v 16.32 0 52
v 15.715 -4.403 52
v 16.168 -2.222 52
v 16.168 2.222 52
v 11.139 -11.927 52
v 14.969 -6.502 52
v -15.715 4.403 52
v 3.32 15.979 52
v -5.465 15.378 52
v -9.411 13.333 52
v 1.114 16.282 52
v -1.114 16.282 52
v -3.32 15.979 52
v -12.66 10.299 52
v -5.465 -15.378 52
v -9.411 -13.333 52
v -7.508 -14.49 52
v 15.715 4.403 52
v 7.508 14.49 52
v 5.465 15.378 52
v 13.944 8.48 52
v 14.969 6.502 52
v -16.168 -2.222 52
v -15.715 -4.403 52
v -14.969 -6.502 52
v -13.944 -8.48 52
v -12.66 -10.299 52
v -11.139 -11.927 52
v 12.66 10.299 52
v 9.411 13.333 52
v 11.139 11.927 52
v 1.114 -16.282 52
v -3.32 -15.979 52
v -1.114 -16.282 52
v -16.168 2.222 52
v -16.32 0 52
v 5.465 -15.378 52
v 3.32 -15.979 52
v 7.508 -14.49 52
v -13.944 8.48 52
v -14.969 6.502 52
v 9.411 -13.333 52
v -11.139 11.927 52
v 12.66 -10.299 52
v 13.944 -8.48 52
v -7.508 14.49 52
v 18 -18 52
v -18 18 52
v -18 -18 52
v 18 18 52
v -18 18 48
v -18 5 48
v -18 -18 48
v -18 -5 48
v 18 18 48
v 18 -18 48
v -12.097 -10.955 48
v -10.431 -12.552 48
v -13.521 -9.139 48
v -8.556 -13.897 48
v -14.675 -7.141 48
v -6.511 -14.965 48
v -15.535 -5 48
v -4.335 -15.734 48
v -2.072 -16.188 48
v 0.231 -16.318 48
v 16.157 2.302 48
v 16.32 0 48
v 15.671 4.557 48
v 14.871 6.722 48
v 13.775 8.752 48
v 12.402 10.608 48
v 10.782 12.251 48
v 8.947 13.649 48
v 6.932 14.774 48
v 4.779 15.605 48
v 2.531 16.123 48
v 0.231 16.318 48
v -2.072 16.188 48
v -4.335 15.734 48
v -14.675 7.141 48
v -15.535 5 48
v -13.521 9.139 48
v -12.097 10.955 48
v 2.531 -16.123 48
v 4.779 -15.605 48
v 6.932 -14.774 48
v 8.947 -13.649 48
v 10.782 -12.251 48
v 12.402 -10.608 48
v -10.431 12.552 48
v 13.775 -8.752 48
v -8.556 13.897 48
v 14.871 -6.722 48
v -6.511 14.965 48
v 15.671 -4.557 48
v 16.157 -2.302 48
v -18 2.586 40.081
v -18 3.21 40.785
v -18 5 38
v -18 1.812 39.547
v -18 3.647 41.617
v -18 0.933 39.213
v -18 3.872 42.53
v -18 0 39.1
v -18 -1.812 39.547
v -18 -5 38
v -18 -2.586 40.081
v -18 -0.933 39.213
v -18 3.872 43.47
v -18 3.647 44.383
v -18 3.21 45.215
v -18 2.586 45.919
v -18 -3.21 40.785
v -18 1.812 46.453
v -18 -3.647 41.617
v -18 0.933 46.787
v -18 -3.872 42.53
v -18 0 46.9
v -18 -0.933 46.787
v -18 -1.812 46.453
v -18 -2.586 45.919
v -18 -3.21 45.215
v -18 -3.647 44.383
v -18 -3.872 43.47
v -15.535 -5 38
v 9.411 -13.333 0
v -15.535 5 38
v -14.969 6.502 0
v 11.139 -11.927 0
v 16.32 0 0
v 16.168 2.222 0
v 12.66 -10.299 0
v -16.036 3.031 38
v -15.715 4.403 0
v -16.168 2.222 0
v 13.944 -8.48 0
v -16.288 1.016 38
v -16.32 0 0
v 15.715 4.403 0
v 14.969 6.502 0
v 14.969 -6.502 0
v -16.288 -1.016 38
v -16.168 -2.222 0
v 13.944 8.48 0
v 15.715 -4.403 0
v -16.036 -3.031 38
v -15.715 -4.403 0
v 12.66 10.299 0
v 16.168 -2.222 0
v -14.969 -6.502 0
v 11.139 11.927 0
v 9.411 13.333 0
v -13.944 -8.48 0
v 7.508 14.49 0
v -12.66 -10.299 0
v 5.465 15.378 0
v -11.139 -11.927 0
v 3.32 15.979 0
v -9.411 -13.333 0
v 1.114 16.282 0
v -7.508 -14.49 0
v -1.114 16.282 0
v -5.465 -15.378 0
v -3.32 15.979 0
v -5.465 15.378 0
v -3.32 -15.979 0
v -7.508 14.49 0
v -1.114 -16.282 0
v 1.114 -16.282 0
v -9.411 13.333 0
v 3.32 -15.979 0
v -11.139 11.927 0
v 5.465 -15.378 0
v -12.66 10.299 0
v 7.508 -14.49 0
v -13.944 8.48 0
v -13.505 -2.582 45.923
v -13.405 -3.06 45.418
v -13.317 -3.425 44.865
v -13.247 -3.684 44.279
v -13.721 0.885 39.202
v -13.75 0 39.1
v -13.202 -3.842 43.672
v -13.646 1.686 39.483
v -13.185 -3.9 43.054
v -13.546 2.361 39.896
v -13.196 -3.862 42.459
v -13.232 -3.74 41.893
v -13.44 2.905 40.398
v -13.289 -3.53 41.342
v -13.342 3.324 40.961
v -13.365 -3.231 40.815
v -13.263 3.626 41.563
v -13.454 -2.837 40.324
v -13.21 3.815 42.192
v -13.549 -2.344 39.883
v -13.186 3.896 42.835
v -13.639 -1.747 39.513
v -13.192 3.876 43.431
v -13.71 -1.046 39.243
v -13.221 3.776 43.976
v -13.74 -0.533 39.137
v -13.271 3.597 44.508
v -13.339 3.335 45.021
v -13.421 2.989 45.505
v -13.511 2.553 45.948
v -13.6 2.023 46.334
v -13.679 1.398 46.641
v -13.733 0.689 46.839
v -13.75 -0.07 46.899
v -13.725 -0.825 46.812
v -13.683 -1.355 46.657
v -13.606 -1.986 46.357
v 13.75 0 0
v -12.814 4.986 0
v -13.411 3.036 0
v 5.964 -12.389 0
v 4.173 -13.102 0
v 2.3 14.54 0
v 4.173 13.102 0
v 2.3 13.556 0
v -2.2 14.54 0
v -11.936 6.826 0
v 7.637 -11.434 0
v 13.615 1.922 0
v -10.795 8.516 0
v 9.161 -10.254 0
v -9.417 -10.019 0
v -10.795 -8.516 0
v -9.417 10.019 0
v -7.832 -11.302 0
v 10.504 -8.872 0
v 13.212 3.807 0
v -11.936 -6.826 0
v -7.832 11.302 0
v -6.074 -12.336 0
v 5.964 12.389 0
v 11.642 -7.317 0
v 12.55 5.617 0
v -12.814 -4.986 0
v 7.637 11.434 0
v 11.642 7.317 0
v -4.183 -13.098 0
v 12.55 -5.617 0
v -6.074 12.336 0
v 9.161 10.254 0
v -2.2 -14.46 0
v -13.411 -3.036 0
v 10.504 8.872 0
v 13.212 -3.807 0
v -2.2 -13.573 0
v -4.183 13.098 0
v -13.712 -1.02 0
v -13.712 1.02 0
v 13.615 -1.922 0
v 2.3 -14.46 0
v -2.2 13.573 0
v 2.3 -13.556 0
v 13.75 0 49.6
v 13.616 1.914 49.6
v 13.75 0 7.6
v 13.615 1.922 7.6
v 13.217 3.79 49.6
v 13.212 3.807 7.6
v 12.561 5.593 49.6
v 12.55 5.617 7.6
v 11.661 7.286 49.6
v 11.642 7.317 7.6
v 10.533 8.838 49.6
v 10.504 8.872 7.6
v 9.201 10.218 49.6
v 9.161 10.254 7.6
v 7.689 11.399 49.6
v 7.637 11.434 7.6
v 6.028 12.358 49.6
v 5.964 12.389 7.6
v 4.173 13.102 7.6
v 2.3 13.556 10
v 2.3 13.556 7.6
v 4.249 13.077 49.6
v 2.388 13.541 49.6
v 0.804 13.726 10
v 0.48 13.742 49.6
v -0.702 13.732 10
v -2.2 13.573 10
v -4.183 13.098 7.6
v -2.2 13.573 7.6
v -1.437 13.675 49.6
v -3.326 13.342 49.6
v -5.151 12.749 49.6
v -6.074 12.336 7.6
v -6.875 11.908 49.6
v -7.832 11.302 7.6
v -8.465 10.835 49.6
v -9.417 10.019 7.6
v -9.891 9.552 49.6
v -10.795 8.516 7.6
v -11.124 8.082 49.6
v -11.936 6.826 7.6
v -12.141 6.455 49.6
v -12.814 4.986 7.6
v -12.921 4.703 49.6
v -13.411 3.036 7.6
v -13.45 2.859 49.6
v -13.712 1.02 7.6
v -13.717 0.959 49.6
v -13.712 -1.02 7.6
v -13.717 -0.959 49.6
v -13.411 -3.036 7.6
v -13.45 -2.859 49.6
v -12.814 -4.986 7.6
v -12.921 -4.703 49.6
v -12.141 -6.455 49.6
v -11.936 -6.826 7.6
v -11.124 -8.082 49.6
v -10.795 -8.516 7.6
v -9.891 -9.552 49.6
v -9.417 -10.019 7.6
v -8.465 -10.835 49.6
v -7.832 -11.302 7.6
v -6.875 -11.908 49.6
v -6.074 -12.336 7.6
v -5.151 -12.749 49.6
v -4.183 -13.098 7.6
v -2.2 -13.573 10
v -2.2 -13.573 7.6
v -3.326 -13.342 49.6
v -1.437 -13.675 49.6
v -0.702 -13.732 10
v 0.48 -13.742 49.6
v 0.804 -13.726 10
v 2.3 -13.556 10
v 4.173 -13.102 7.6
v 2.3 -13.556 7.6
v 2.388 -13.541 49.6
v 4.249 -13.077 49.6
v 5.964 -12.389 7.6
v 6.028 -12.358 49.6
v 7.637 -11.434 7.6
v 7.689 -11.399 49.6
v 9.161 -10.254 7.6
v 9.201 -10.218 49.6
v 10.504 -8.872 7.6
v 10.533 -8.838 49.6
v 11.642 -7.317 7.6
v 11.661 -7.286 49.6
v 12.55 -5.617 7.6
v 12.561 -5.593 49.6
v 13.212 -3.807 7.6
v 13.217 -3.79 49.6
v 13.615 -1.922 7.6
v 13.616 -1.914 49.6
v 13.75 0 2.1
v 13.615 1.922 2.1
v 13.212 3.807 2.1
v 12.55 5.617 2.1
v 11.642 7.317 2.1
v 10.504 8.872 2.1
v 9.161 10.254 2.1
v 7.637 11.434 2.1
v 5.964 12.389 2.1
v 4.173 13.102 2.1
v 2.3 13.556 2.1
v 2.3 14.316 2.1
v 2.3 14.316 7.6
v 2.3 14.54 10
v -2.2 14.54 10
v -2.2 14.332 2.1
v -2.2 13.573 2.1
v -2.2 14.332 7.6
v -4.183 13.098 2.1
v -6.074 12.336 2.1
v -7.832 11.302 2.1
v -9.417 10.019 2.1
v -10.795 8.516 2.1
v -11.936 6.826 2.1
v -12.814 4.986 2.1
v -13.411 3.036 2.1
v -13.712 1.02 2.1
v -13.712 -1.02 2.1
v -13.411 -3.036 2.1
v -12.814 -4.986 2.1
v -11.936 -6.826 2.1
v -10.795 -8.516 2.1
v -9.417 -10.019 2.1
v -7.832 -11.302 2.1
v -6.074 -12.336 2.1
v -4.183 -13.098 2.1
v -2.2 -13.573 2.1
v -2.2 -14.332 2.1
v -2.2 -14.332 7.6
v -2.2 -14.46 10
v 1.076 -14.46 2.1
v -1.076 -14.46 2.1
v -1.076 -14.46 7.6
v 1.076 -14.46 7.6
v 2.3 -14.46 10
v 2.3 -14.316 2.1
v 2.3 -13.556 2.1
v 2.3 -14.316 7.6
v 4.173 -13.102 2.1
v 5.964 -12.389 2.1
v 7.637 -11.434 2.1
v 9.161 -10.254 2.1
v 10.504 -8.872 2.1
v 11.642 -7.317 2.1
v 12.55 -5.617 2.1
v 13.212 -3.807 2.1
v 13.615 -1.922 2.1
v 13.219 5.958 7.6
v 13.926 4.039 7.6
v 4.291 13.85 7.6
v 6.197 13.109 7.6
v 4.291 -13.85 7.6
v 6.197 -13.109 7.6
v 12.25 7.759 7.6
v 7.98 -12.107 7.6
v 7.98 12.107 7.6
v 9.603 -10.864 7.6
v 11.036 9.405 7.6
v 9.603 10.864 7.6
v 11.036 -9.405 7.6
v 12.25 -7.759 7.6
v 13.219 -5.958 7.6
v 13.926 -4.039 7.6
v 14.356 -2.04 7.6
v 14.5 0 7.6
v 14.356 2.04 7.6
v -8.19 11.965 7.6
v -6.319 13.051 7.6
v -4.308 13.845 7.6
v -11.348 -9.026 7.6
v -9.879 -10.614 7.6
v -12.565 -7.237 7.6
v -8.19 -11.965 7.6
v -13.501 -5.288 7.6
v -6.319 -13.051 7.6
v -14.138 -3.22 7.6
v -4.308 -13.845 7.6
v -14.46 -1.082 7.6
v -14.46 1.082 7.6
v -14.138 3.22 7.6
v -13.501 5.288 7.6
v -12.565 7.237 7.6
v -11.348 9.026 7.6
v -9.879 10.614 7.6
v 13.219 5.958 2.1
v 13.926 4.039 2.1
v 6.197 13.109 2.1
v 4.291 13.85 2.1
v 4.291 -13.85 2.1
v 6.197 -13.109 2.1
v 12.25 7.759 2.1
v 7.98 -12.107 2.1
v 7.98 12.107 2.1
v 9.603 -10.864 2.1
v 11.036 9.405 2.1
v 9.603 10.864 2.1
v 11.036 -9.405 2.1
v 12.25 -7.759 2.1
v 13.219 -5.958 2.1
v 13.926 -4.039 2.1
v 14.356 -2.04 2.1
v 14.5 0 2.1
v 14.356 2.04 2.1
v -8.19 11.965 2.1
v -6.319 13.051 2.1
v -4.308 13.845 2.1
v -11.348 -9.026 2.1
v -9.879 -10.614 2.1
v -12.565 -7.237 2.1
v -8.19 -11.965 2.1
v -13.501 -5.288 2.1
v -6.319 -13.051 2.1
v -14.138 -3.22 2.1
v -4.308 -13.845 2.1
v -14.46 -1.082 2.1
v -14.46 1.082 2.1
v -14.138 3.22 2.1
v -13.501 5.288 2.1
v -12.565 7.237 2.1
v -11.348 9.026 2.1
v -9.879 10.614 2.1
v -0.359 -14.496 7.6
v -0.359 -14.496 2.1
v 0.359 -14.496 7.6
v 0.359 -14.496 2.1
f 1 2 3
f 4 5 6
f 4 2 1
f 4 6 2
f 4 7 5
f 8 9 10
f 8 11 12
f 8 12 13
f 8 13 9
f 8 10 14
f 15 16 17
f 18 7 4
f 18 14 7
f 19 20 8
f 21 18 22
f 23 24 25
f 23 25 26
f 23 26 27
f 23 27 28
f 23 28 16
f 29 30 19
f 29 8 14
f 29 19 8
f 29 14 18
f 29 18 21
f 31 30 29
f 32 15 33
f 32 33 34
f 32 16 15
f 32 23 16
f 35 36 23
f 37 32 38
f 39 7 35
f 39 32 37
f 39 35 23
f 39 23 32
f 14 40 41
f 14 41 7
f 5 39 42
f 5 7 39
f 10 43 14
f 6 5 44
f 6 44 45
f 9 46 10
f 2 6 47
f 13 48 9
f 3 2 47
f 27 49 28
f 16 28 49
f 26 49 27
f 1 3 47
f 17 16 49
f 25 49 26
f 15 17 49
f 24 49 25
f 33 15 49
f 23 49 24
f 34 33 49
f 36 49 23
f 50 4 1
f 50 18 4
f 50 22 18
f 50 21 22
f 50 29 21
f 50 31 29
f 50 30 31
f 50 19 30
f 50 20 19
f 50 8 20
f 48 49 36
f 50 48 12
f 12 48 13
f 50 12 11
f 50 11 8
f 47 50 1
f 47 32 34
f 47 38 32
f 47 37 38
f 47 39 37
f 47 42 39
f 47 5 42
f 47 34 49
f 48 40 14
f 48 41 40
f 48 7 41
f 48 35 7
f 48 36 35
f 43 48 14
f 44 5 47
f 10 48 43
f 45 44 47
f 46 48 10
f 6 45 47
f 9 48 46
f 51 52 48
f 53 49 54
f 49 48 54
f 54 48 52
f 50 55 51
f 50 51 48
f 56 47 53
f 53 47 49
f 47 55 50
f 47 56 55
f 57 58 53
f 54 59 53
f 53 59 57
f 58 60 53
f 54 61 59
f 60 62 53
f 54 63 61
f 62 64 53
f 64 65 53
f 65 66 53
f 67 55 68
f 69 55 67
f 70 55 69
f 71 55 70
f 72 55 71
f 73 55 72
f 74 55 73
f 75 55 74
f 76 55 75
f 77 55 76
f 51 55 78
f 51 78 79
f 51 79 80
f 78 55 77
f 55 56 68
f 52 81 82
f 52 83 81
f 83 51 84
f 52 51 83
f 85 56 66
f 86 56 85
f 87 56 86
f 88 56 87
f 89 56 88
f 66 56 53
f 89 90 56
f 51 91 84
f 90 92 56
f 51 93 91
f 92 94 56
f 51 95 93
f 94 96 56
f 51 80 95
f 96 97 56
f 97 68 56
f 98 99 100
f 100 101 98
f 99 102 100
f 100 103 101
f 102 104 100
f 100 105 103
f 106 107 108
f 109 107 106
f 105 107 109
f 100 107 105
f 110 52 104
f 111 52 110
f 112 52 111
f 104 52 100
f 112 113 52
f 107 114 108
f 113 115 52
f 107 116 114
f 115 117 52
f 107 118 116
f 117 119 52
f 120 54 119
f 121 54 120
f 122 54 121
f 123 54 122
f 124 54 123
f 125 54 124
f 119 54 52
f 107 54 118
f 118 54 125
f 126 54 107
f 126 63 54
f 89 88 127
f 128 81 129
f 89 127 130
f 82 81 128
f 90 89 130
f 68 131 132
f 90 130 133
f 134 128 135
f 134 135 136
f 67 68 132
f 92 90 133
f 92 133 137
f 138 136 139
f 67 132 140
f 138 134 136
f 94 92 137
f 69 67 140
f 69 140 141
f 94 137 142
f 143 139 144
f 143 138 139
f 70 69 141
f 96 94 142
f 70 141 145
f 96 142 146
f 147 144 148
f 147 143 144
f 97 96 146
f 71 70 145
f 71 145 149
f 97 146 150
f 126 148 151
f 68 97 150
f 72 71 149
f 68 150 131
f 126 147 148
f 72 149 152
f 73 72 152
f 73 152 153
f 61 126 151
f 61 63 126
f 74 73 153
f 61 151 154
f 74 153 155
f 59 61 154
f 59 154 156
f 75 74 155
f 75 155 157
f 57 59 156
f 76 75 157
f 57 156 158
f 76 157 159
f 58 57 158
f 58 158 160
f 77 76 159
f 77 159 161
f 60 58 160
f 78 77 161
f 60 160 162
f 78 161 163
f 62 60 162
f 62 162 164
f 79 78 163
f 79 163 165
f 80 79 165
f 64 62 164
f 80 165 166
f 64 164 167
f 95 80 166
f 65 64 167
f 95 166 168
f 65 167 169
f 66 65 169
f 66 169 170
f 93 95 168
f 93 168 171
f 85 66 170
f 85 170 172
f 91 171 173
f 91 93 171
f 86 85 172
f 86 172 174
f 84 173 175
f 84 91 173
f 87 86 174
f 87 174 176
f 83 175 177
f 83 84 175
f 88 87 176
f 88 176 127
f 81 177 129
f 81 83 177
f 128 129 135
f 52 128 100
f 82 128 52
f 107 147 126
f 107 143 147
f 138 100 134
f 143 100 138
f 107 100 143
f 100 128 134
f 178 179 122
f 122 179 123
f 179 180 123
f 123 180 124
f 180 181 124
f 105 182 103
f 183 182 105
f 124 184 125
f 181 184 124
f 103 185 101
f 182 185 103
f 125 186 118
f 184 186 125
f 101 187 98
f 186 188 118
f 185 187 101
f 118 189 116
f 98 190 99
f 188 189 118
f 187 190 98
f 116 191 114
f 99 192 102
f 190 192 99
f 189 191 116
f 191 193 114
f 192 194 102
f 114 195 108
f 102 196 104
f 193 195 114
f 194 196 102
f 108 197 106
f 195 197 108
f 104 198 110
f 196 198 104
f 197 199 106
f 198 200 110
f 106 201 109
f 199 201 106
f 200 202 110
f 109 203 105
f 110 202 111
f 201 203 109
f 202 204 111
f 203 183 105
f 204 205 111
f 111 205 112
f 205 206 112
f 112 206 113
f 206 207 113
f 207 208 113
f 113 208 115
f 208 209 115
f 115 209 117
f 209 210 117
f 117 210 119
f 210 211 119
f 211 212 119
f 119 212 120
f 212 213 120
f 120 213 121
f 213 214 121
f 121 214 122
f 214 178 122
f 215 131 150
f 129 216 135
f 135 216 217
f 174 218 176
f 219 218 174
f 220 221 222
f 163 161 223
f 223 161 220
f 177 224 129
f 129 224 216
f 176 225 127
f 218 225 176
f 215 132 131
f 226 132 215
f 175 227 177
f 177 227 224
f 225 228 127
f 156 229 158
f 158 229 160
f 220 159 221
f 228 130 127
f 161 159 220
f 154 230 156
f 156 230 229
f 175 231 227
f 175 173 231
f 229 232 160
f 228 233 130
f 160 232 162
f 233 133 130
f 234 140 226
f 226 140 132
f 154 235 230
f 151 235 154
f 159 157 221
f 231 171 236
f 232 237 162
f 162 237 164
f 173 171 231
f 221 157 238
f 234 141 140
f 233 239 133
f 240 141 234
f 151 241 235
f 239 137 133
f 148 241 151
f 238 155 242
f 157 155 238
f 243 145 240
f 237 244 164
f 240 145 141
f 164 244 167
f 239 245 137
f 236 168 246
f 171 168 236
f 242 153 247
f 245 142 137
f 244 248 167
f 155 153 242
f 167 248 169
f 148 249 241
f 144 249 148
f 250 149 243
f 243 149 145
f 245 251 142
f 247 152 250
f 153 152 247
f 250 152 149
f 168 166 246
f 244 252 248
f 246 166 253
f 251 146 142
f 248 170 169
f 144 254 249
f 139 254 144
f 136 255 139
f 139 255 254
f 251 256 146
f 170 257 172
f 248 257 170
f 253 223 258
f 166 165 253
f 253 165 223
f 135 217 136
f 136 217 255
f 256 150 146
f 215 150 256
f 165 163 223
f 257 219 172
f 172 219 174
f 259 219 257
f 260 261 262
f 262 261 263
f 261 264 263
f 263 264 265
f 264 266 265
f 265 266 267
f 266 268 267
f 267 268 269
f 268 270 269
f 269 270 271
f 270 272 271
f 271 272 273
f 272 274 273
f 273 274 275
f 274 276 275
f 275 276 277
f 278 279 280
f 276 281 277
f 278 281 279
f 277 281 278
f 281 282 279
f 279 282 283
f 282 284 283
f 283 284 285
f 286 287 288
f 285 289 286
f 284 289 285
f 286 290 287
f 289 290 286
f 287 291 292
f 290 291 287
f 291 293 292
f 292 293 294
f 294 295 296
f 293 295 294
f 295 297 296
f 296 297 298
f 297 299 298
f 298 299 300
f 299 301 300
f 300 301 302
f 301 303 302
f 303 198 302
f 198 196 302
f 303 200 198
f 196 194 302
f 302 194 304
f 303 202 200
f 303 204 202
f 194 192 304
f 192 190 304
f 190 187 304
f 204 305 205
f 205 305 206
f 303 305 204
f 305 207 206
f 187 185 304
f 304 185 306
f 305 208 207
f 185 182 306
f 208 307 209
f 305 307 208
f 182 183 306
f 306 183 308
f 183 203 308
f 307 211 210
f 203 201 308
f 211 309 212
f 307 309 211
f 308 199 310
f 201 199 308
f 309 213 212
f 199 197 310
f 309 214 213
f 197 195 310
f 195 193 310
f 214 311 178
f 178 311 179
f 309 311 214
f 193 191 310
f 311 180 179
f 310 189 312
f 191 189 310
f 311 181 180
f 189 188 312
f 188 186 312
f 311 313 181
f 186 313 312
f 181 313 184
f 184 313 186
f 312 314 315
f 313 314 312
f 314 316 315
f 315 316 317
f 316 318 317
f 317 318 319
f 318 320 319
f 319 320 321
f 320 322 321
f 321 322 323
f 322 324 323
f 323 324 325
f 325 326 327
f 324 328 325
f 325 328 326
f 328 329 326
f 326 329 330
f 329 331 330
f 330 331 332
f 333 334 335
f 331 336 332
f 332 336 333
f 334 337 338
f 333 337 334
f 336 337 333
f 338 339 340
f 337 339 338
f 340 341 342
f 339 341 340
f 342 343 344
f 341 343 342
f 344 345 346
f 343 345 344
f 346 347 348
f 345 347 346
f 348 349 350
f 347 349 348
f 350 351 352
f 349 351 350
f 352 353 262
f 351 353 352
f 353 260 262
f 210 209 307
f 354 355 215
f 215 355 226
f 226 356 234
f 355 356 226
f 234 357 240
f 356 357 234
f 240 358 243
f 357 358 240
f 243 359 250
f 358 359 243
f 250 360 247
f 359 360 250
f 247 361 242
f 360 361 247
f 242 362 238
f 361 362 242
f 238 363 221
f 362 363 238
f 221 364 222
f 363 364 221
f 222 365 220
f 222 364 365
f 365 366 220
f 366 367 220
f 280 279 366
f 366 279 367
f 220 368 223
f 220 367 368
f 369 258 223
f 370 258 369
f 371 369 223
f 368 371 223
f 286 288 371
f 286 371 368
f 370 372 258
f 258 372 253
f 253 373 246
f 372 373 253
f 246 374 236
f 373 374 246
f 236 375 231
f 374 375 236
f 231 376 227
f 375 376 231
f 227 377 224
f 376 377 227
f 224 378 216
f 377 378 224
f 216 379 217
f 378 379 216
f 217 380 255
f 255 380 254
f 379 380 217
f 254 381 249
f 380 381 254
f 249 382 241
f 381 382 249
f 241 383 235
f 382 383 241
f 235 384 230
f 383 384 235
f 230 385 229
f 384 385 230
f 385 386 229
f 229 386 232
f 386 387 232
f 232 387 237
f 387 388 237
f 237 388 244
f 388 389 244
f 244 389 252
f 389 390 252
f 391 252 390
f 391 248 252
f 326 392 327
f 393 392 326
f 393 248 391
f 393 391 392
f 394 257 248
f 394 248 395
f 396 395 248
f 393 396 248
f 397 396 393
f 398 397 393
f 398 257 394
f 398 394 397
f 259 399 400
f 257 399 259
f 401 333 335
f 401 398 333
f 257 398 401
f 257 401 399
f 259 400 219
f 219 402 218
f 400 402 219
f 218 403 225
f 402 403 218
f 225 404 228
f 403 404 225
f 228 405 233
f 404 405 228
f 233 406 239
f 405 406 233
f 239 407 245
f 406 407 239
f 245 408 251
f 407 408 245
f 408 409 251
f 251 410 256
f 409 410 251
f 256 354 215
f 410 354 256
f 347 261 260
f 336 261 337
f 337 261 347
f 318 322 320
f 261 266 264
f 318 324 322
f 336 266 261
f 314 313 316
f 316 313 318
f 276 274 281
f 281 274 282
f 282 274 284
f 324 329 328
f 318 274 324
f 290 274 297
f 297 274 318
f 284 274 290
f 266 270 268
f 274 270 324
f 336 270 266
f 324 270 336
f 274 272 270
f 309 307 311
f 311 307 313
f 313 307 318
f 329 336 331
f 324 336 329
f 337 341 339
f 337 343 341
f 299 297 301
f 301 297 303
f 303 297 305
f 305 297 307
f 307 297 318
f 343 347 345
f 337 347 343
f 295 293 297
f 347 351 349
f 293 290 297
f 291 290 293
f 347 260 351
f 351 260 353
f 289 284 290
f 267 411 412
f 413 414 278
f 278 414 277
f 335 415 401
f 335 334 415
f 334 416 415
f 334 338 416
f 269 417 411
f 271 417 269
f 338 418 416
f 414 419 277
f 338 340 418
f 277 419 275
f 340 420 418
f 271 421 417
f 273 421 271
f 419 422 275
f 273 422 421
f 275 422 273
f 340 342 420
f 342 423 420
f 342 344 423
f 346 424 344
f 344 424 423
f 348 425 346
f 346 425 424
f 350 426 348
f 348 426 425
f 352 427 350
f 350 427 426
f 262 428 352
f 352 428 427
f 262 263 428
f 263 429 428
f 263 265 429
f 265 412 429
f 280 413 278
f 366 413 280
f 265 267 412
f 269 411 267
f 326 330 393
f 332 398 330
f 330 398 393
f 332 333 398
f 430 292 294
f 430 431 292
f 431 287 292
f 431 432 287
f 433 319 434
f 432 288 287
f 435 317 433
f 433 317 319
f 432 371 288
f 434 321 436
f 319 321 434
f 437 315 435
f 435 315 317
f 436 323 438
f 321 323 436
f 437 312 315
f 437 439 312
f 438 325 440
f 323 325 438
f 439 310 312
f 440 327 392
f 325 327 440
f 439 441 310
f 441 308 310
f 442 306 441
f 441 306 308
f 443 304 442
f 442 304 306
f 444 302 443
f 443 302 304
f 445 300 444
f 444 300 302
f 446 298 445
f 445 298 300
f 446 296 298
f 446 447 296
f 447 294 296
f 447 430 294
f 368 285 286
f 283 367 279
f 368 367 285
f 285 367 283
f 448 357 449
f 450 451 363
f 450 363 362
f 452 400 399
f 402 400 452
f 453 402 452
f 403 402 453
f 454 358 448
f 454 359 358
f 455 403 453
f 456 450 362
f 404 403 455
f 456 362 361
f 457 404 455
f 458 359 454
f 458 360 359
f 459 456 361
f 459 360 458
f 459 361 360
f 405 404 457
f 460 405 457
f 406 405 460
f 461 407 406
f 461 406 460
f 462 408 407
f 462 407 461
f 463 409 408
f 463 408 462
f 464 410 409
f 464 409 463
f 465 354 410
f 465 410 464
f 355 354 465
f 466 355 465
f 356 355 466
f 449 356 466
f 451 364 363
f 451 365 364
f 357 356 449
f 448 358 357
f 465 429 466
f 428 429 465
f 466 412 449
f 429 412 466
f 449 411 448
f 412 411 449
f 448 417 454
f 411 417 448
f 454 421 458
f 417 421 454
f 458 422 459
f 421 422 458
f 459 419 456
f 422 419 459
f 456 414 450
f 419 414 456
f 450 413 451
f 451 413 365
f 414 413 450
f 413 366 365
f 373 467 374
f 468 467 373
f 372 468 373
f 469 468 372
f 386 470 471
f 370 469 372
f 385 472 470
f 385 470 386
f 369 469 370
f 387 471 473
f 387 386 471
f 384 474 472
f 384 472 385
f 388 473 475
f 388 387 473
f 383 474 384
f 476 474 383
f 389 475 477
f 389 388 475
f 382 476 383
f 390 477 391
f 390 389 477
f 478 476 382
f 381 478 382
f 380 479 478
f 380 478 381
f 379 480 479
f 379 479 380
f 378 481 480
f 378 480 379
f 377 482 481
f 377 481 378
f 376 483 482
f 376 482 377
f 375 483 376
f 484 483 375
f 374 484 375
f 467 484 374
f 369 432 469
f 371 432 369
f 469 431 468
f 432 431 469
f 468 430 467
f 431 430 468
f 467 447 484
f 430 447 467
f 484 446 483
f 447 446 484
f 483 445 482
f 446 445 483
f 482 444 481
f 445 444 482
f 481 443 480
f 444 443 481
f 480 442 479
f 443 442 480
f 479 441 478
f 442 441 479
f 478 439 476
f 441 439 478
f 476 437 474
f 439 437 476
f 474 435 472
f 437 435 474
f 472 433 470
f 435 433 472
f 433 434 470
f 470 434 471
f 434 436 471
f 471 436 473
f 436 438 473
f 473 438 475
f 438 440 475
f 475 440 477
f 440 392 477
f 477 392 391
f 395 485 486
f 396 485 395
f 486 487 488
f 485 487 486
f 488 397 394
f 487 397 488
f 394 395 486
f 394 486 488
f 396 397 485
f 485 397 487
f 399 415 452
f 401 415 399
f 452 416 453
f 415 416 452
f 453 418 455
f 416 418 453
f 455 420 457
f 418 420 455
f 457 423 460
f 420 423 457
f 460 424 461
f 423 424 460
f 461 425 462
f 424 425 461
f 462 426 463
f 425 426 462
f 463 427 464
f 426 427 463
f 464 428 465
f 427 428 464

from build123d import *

# Parameters (mm, degrees)
BOX002_W          = 4.5
BOX002_H          = 29
BOX002_DEPTH      = 10
CYLINDER003_R     = 14.5
CYLINDER003_DEPTH = 5.5
CYLINDER002_R     = 3.9
CYLINDER002_DEPTH = 10
CYLINDER_R        = 13.75
CYLINDER_DEPTH    = 49.6
BOX_W             = 36
BOX_H             = 36
BOX_DEPTH         = 4
BOX001_W          = 10
BOX001_H          = 10
BOX001_DEPTH      = 10
CYLINDER001_R     = 16.32
CYLINDER001_DEPTH = 52


with BuildPart() as cube002:
    # Box002 → Box002 (new body)
    with BuildSketch(Plane(origin=(-2.2, -14.46, 0), x_dir=(1, 0, 0), z_dir=(0, 0, 1))):
        with Locations((2.25, 14.5)):
            Rectangle(BOX002_W, BOX002_H)
    extrude(amount=BOX002_DEPTH)


with BuildPart() as cylinder003:
    # Cylinder003 → Cylinder003 (new body)
    with BuildSketch(Plane.XY.offset(2.1)):
        Circle(CYLINDER003_R)
    extrude(amount=CYLINDER003_DEPTH)


with BuildPart() as cylinder002:
    # Cylinder002 → Cylinder002 (new body)
    with BuildSketch(Plane(origin=(-20, 0, 43), x_dir=(0, 0, -1), z_dir=(1, 0, 0))):
        Circle(CYLINDER002_R)
    extrude(amount=CYLINDER002_DEPTH)


with BuildPart() as cylinder:
    # Cylinder → Cylinder (new body)
    with BuildSketch(Plane.XY):
        Circle(CYLINDER_R)
    extrude(amount=CYLINDER_DEPTH)


with BuildPart() as cube:
    # Box → Box (new body)
    with BuildSketch(Plane(origin=(-18, -18, 48), x_dir=(1, 0, 0), z_dir=(0, 0, 1))):
        with Locations((18, 18)):
            Rectangle(BOX_W, BOX_H)
    extrude(amount=BOX_DEPTH)


with BuildPart() as cube001:
    # Box001 → Box001 (new body)
    with BuildSketch(Plane(origin=(-18, -5, 38), x_dir=(1, 0, 0), z_dir=(0, 0, 1))):
        with Locations((5, 5)):
            Rectangle(BOX001_W, BOX001_H)
    extrude(amount=BOX001_DEPTH)


with BuildPart() as cut003:
    # Cylinder001 → Cylinder001 (new body)
    with BuildSketch(Plane.XY):
        Circle(CYLINDER001_R)
    extrude(amount=CYLINDER001_DEPTH)

    # Fusion: union Cube, Cube001
    add(cube.part)
    add(cube001.part)

    # Cut: cut Cylinder
    add(cylinder.part, mode=Mode.SUBTRACT)

    # Cut001: cut Cylinder002
    add(cylinder002.part, mode=Mode.SUBTRACT)

    # Cut002: cut Cylinder003
    add(cylinder003.part, mode=Mode.SUBTRACT)

    # Cut003: cut Cube002
    add(cube002.part, mode=Mode.SUBTRACT)


solid = cut003.part
